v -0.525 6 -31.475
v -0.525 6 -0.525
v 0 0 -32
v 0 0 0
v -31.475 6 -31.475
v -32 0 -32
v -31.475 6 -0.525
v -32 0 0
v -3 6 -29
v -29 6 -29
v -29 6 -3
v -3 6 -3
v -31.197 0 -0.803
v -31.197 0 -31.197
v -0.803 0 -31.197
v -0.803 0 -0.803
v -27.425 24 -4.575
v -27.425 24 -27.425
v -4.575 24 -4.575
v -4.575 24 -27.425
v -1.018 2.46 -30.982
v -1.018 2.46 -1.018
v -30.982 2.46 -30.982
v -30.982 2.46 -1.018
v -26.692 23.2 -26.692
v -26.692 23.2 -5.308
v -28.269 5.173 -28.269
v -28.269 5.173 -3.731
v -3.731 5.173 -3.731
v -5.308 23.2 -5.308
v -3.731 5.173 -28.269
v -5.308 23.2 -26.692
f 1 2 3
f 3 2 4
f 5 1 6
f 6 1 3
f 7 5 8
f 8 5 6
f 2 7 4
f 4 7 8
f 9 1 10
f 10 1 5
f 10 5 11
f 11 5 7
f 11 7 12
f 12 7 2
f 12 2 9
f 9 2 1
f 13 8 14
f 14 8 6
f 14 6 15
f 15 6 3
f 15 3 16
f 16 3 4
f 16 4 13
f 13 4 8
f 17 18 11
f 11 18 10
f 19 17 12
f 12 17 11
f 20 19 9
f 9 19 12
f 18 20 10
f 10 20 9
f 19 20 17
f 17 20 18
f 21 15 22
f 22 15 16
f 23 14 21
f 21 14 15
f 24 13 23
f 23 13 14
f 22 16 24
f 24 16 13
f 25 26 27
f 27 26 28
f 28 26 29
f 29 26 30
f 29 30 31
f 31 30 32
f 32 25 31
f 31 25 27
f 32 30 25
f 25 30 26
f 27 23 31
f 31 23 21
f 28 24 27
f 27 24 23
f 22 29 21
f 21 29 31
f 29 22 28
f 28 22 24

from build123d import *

# Parameters (mm, degrees)
SKETCH1_W           = 32
SKETCH1_H           = 32
BOSS_EXTRUDE1_DEPTH = 6
BOSS_EXTRUDE1_TAPER = 5
SKETCH2_W           = 26
SKETCH2_H           = 26
BOSS_EXTRUDE2_DEPTH = 18
BOSS_EXTRUDE2_TAPER = 5
SHELL1_T            = -0.8
CHAMFER1_SIZE       = 2.5
CHAMFER1_SIZE_2     = 2.750157169


with BuildPart() as part:
    # Sketch1 → Boss-Extrude1 (new body)
    with BuildSketch(Plane(origin=(0, 0, 0), x_dir=(1, 0, 0), z_dir=(0, 1, 0))):
        with Locations((-16, 16)):
            Rectangle(SKETCH1_W, SKETCH1_H)
    extrude(amount=BOSS_EXTRUDE1_DEPTH, taper=BOSS_EXTRUDE1_TAPER)

    # Sketch2 → Boss-Extrude2 (add)
    with BuildSketch(Plane(origin=(0, 6, 0), x_dir=(1, 0, 0), z_dir=(0, 1, 0))):
        with Locations((-16, 16)):
            Rectangle(SKETCH2_W, SKETCH2_H)
    extrude(amount=BOSS_EXTRUDE2_DEPTH, taper=BOSS_EXTRUDE2_TAPER)

    # Shell1
    shell1_openings = [part.faces().sort_by_distance(p)[0] for p in [
        (-16, 0, -16),
    ]]
    offset(amount=SHELL1_T, openings=shell1_openings, kind=Kind.INTERSECTION)

    # Chamfer1
    # the kernel refuses this chamfer: 2.750157169, 2.5 mm, written as the material it adds along each edge
    with BuildSketch(Plane(origin=(5.830274952, 5.2, -1.25799692), x_dir=(0, 0.030161850139926293, -0.9995450278982617), z_dir=(-1, 0, 0))) as chamfer1_piece_1_section:
        Polygon((CHAMFER1_SIZE * 0.999545027898, CHAMFER1_SIZE * 0.0301618501399), (-CHAMFER1_SIZE_2 * 0.117163164513, CHAMFER1_SIZE_2 * 0.993112678869), (0, 0), align=None)
    chamfer1_piece_1 = extrude(amount=43.660549905, mode=Mode.PRIVATE)
    chamfer1_piece_1 = split(chamfer1_piece_1, bisect_by=Plane(origin=(-1.2737044, 5.379537315, -3.779154262), z_dir=(-0.9961946980917455, -0.08715574274765792, 0)), keep=Keep.TOP, mode=Mode.PRIVATE)
    chamfer1_piece_1 = split(chamfer1_piece_1, bisect_by=Plane(origin=(-3.729971497, 5.164641789, -3.779154262), z_dir=(0.9961946980917455, 0.08715574274765821, 0)), keep=Keep.TOP, mode=Mode.PRIVATE)
    chamfer1_piece_1 = split(chamfer1_piece_1, bisect_by=Plane(origin=(-2.501837948, 5.275543614, -3.739674149), z_dir=(0, -0.08715574274765829, -0.9961946980917455)), keep=Keep.TOP, mode=Mode.PRIVATE)
    add(chamfer1_piece_1)
    with BuildSketch(Plane(origin=(5.830274952, 5.2, -1.25799692), x_dir=(0, 0.030161850139926293, -0.9995450278982617), z_dir=(-1, 0, 0))) as chamfer1_piece_2_section:
        Polygon((CHAMFER1_SIZE * 0.999545027898, CHAMFER1_SIZE * 0.0301618501399), (-CHAMFER1_SIZE_2 * 0.117163164513, CHAMFER1_SIZE_2 * 0.993112678869), (0, 0), align=None)
    chamfer1_piece_2 = extrude(amount=43.660549905, mode=Mode.PRIVATE)
    chamfer1_piece_2 = split(chamfer1_piece_2, bisect_by=Plane(origin=(-1.187972058, 4.399612159, -1.99521412), z_dir=(-0.9961946980917455, -0.08715574274765792, 0)), keep=Keep.TOP, mode=Mode.PRIVATE)
    chamfer1_piece_2 = split(chamfer1_piece_2, bisect_by=Plane(origin=(-3.644239154, 4.184716633, -1.99521412), z_dir=(0.9961946980917455, 0.08715574274765821, 0)), keep=Keep.TOP, mode=Mode.PRIVATE)
    chamfer1_piece_2 = split(chamfer1_piece_2, bisect_by=Plane(origin=(-2.416105606, 4.148173113, -3.641042011), z_dir=(0, 0.08715574274765829, 0.9961946980917455)), keep=Keep.TOP, mode=Mode.PRIVATE)
    add(chamfer1_piece_2)
    with BuildSketch(Plane(origin=(5.830274952, 5.2, -1.25799692), x_dir=(0, 0.030161850139926293, -0.9995450278982617), z_dir=(-1, 0, 0))) as chamfer1_piece_3_section:
        Polygon((CHAMFER1_SIZE * 0.999545027898, CHAMFER1_SIZE * 0.0301618501399), (-CHAMFER1_SIZE_2 * 0.117163164513, CHAMFER1_SIZE_2 * 0.993112678869), (0, 0), align=None)
    chamfer1_piece_3 = extrude(amount=43.660549905, mode=Mode.PRIVATE)
    chamfer1_piece_3 = split(chamfer1_piece_3, bisect_by=Plane(origin=(-3.747130429, 5.360769289, -1.993289961), z_dir=(-0.9961946980917455, -0.08715574274765821, 0)), keep=Keep.TOP, mode=Mode.PRIVATE)
    chamfer1_piece_3 = split(chamfer1_piece_3, bisect_by=Plane(origin=(-16, 4.144649452, -3.64073373), z_dir=(0, 0.08715574274765829, 0.9961946980917455)), keep=Keep.TOP, mode=Mode.PRIVATE)
    chamfer1_piece_3 = split(chamfer1_piece_3, bisect_by=Plane(origin=(-28.252869571, 5.360769289, -1.993289961), z_dir=(0.9961946980917455, -0.08715574274765829, 0)), keep=Keep.TOP, mode=Mode.PRIVATE)
    add(chamfer1_piece_3)
    with BuildSketch(Plane(origin=(5.830274952, 5.2, -1.25799692), x_dir=(0, 0.030161850139926293, -0.9995450278982617), z_dir=(-1, 0, 0))) as chamfer1_piece_4_section:
        Polygon((CHAMFER1_SIZE * 0.999545027898, CHAMFER1_SIZE * 0.0301618501399), (-CHAMFER1_SIZE_2 * 0.117163164513, CHAMFER1_SIZE_2 * 0.993112678869), (0, 0), align=None)
    chamfer1_piece_4 = extrude(amount=43.660549905, mode=Mode.PRIVATE)
    chamfer1_piece_4 = split(chamfer1_piece_4, bisect_by=Plane(origin=(-29.498162052, 5.275543614, -3.739674149), z_dir=(0, -0.08715574274765829, -0.9961946980917455)), keep=Keep.TOP, mode=Mode.PRIVATE)
    chamfer1_piece_4 = split(chamfer1_piece_4, bisect_by=Plane(origin=(-28.270028503, 5.164641789, -3.779154262), z_dir=(-0.9961946980917455, 0.08715574274765829, 0)), keep=Keep.TOP, mode=Mode.PRIVATE)
    chamfer1_piece_4 = split(chamfer1_piece_4, bisect_by=Plane(origin=(-30.7262956, 5.379537315, -3.779154262), z_dir=(0.9961946980917455, -0.08715574274765851, 0)), keep=Keep.TOP, mode=Mode.PRIVATE)
    add(chamfer1_piece_4)
    with BuildSketch(Plane(origin=(5.830274952, 5.2, -1.25799692), x_dir=(0, 0.030161850139926293, -0.9995450278982617), z_dir=(-1, 0, 0))) as chamfer1_piece_5_section:
        Polygon((CHAMFER1_SIZE * 0.999545027898, CHAMFER1_SIZE * 0.0301618501399), (-CHAMFER1_SIZE_2 * 0.117163164513, CHAMFER1_SIZE_2 * 0.993112678869), (0, 0), align=None)
    chamfer1_piece_5 = extrude(amount=43.660549905, mode=Mode.PRIVATE)
    chamfer1_piece_5 = split(chamfer1_piece_5, bisect_by=Plane(origin=(-29.583894394, 4.148173113, -3.641042011), z_dir=(0, 0.08715574274765829, 0.9961946980917455)), keep=Keep.TOP, mode=Mode.PRIVATE)
    chamfer1_piece_5 = split(chamfer1_piece_5, bisect_by=Plane(origin=(-28.355760846, 4.184716633, -1.99521412), z_dir=(-0.9961946980917455, 0.08715574274765829, 0)), keep=Keep.TOP, mode=Mode.PRIVATE)
    chamfer1_piece_5 = split(chamfer1_piece_5, bisect_by=Plane(origin=(-30.812027942, 4.399612159, -1.99521412), z_dir=(0.9961946980917455, -0.08715574274765851, 0)), keep=Keep.TOP, mode=Mode.PRIVATE)
    add(chamfer1_piece_5)
    with BuildSketch(Plane(origin=(-30.74200308, 5.2, 5.830274952), x_dir=(0.9995450278982617, 0.030161850139926356, 0), z_dir=(0, 0, -1))) as chamfer1_piece_6_section:
        Polygon((CHAMFER1_SIZE * 0.999545027898, CHAMFER1_SIZE * 0.0301618501399), (-CHAMFER1_SIZE_2 * 0.117163164513, CHAMFER1_SIZE_2 * 0.993112678869), (0, 0), align=None)
    chamfer1_piece_6 = extrude(amount=43.660549905, mode=Mode.PRIVATE)
    chamfer1_piece_6 = split(chamfer1_piece_6, bisect_by=Plane(origin=(-28.220845738, 5.164641789, -3.729971497), z_dir=(0, 0.08715574274765829, 0.9961946980917455)), keep=Keep.TOP, mode=Mode.PRIVATE)
    chamfer1_piece_6 = split(chamfer1_piece_6, bisect_by=Plane(origin=(-28.260325851, 5.275543614, -2.501837948), z_dir=(0.9961946980917455, -0.08715574274765829, 0)), keep=Keep.TOP, mode=Mode.PRIVATE)
    chamfer1_piece_6 = split(chamfer1_piece_6, bisect_by=Plane(origin=(-28.220845738, 5.379537315, -1.2737044), z_dir=(0, -0.08715574274765792, -0.9961946980917455)), keep=Keep.TOP, mode=Mode.PRIVATE)
    add(chamfer1_piece_6)
    with BuildSketch(Plane(origin=(-30.74200308, 5.2, 5.830274952), x_dir=(0.9995450278982617, 0.030161850139926356, 0), z_dir=(0, 0, -1))) as chamfer1_piece_7_section:
        Polygon((CHAMFER1_SIZE * 0.999545027898, CHAMFER1_SIZE * 0.0301618501399), (-CHAMFER1_SIZE_2 * 0.117163164513, CHAMFER1_SIZE_2 * 0.993112678869), (0, 0), align=None)
    chamfer1_piece_7 = extrude(amount=43.660549905, mode=Mode.PRIVATE)
    chamfer1_piece_7 = split(chamfer1_piece_7, bisect_by=Plane(origin=(-30.00478588, 4.184716633, -3.644239154), z_dir=(0, 0.08715574274765829, 0.9961946980917455)), keep=Keep.TOP, mode=Mode.PRIVATE)
    chamfer1_piece_7 = split(chamfer1_piece_7, bisect_by=Plane(origin=(-28.358957989, 4.148173113, -2.416105606), z_dir=(-0.9961946980917455, 0.08715574274765829, 0)), keep=Keep.TOP, mode=Mode.PRIVATE)
    chamfer1_piece_7 = split(chamfer1_piece_7, bisect_by=Plane(origin=(-30.00478588, 4.399612159, -1.187972058), z_dir=(0, -0.08715574274765792, -0.9961946980917455)), keep=Keep.TOP, mode=Mode.PRIVATE)
    add(chamfer1_piece_7)
    with BuildSketch(Plane(origin=(-30.74200308, 5.2, 5.830274952), x_dir=(0.9995450278982617, 0.030161850139926356, 0), z_dir=(0, 0, -1))) as chamfer1_piece_8_section:
        Polygon((CHAMFER1_SIZE * 0.999545027898, CHAMFER1_SIZE * 0.0301618501399), (-CHAMFER1_SIZE_2 * 0.117163164513, CHAMFER1_SIZE_2 * 0.993112678869), (0, 0), align=None)
    chamfer1_piece_8 = extrude(amount=43.660549905, mode=Mode.PRIVATE)
    chamfer1_piece_8 = split(chamfer1_piece_8, bisect_by=Plane(origin=(-30.006710039, 5.360769289, -28.252869571), z_dir=(0, -0.08715574274765829, 0.9961946980917455)), keep=Keep.TOP, mode=Mode.PRIVATE)
    chamfer1_piece_8 = split(chamfer1_piece_8, bisect_by=Plane(origin=(-30.006710039, 5.360769289, -3.747130429), z_dir=(0, -0.08715574274765829, -0.9961946980917455)), keep=Keep.TOP, mode=Mode.PRIVATE)
    chamfer1_piece_8 = split(chamfer1_piece_8, bisect_by=Plane(origin=(-28.35926627, 4.144649452, -16), z_dir=(-0.9961946980917455, 0.08715574274765829, 0)), keep=Keep.TOP, mode=Mode.PRIVATE)
    add(chamfer1_piece_8)
    with BuildSketch(Plane(origin=(-30.74200308, 5.2, 5.830274952), x_dir=(0.9995450278982617, 0.030161850139926356, 0), z_dir=(0, 0, -1))) as chamfer1_piece_9_section:
        Polygon((CHAMFER1_SIZE * 0.999545027898, CHAMFER1_SIZE * 0.0301618501399), (-CHAMFER1_SIZE_2 * 0.117163164513, CHAMFER1_SIZE_2 * 0.993112678869), (0, 0), align=None)
    chamfer1_piece_9 = extrude(amount=43.660549905, mode=Mode.PRIVATE)
    chamfer1_piece_9 = split(chamfer1_piece_9, bisect_by=Plane(origin=(-28.220845738, 5.379537315, -30.7262956), z_dir=(0, -0.08715574274765836, 0.9961946980917455)), keep=Keep.TOP, mode=Mode.PRIVATE)
    chamfer1_piece_9 = split(chamfer1_piece_9, bisect_by=Plane(origin=(-28.220845738, 5.164641789, -28.270028503), z_dir=(0, 0.08715574274765829, -0.9961946980917455)), keep=Keep.TOP, mode=Mode.PRIVATE)
    chamfer1_piece_9 = split(chamfer1_piece_9, bisect_by=Plane(origin=(-28.260325851, 5.275543614, -29.498162052), z_dir=(0.9961946980917455, -0.08715574274765829, 0)), keep=Keep.TOP, mode=Mode.PRIVATE)
    add(chamfer1_piece_9)
    with BuildSketch(Plane(origin=(-30.74200308, 5.2, 5.830274952), x_dir=(0.9995450278982617, 0.030161850139926356, 0), z_dir=(0, 0, -1))) as chamfer1_piece_10_section:
        Polygon((CHAMFER1_SIZE * 0.999545027898, CHAMFER1_SIZE * 0.0301618501399), (-CHAMFER1_SIZE_2 * 0.117163164513, CHAMFER1_SIZE_2 * 0.993112678869), (0, 0), align=None)
    chamfer1_piece_10 = extrude(amount=43.660549905, mode=Mode.PRIVATE)
    chamfer1_piece_10 = split(chamfer1_piece_10, bisect_by=Plane(origin=(-30.00478588, 4.399612159, -30.812027942), z_dir=(0, -0.08715574274765836, 0.9961946980917455)), keep=Keep.TOP, mode=Mode.PRIVATE)
    chamfer1_piece_10 = split(chamfer1_piece_10, bisect_by=Plane(origin=(-30.00478588, 4.184716633, -28.355760846), z_dir=(0, 0.08715574274765829, -0.9961946980917455)), keep=Keep.TOP, mode=Mode.PRIVATE)
    chamfer1_piece_10 = split(chamfer1_piece_10, bisect_by=Plane(origin=(-28.358957989, 4.148173113, -29.583894394), z_dir=(-0.9961946980917455, 0.08715574274765829, 0)), keep=Keep.TOP, mode=Mode.PRIVATE)
    add(chamfer1_piece_10)
    with BuildSketch(Plane(origin=(5.830274952, 5.2, -30.74200308), x_dir=(0, -0.9937112432628153, -0.11197305485280758), z_dir=(-1, 0, 0))) as chamfer1_piece_11_section:
        Polygon((CHAMFER1_SIZE_2 * 0.99968896676, CHAMFER1_SIZE_2 * 0.0249393220908), (-CHAMFER1_SIZE * 0.111973054853, CHAMFER1_SIZE * 0.993711243263), (0, 0), align=None)
    chamfer1_piece_11 = extrude(amount=43.660549905, mode=Mode.PRIVATE)
    chamfer1_piece_11 = split(chamfer1_piece_11, bisect_by=Plane(origin=(-1.187972058, 4.399612159, -30.00478588), z_dir=(-0.9961946980917455, -0.08715574274765792, 0)), keep=Keep.TOP, mode=Mode.PRIVATE)
    chamfer1_piece_11 = split(chamfer1_piece_11, bisect_by=Plane(origin=(-2.416105606, 4.148173113, -28.358957989), z_dir=(0, 0.08715574274765829, -0.9961946980917455)), keep=Keep.TOP, mode=Mode.PRIVATE)
    chamfer1_piece_11 = split(chamfer1_piece_11, bisect_by=Plane(origin=(-3.644239154, 4.184716633, -30.00478588), z_dir=(0.9961946980917455, 0.08715574274765821, 0)), keep=Keep.TOP, mode=Mode.PRIVATE)
    add(chamfer1_piece_11)
    with BuildSketch(Plane(origin=(5.830274952, 5.2, -30.74200308), x_dir=(0, -0.9937112432628153, -0.11197305485280758), z_dir=(-1, 0, 0))) as chamfer1_piece_12_section:
        Polygon((CHAMFER1_SIZE_2 * 0.99968896676, CHAMFER1_SIZE_2 * 0.0249393220908), (-CHAMFER1_SIZE * 0.111973054853, CHAMFER1_SIZE * 0.993711243263), (0, 0), align=None)
    chamfer1_piece_12 = extrude(amount=43.660549905, mode=Mode.PRIVATE)
    chamfer1_piece_12 = split(chamfer1_piece_12, bisect_by=Plane(origin=(-1.2737044, 5.379537315, -28.220845738), z_dir=(-0.9961946980917455, -0.08715574274765792, 0)), keep=Keep.TOP, mode=Mode.PRIVATE)
    chamfer1_piece_12 = split(chamfer1_piece_12, bisect_by=Plane(origin=(-2.501837948, 5.275543614, -28.260325851), z_dir=(0, -0.08715574274765829, 0.9961946980917455)), keep=Keep.TOP, mode=Mode.PRIVATE)
    chamfer1_piece_12 = split(chamfer1_piece_12, bisect_by=Plane(origin=(-3.729971497, 5.164641789, -28.220845738), z_dir=(0.9961946980917455, 0.08715574274765821, 0)), keep=Keep.TOP, mode=Mode.PRIVATE)
    add(chamfer1_piece_12)
    with BuildSketch(Plane(origin=(5.830274952, 5.2, -30.74200308), x_dir=(0, -0.9937112432628153, -0.11197305485280758), z_dir=(-1, 0, 0))) as chamfer1_piece_13_section:
        Polygon((CHAMFER1_SIZE_2 * 0.99968896676, CHAMFER1_SIZE_2 * 0.0249393220908), (-CHAMFER1_SIZE * 0.111973054853, CHAMFER1_SIZE * 0.993711243263), (0, 0), align=None)
    chamfer1_piece_13 = extrude(amount=43.660549905, mode=Mode.PRIVATE)
    chamfer1_piece_13 = split(chamfer1_piece_13, bisect_by=Plane(origin=(-16, 4.144649452, -28.35926627), z_dir=(0, 0.08715574274765829, -0.9961946980917455)), keep=Keep.TOP, mode=Mode.PRIVATE)
    chamfer1_piece_13 = split(chamfer1_piece_13, bisect_by=Plane(origin=(-3.747130429, 5.360769289, -30.006710039), z_dir=(-0.9961946980917455, -0.08715574274765821, 0)), keep=Keep.TOP, mode=Mode.PRIVATE)
    chamfer1_piece_13 = split(chamfer1_piece_13, bisect_by=Plane(origin=(-28.252869571, 5.360769289, -30.006710039), z_dir=(0.9961946980917455, -0.08715574274765829, 0)), keep=Keep.TOP, mode=Mode.PRIVATE)
    add(chamfer1_piece_13)
    with BuildSketch(Plane(origin=(5.830274952, 5.2, -30.74200308), x_dir=(0, -0.9937112432628153, -0.11197305485280758), z_dir=(-1, 0, 0))) as chamfer1_piece_14_section:
        Polygon((CHAMFER1_SIZE_2 * 0.99968896676, CHAMFER1_SIZE_2 * 0.0249393220908), (-CHAMFER1_SIZE * 0.111973054853, CHAMFER1_SIZE * 0.993711243263), (0, 0), align=None)
    chamfer1_piece_14 = extrude(amount=43.660549905, mode=Mode.PRIVATE)
    chamfer1_piece_14 = split(chamfer1_piece_14, bisect_by=Plane(origin=(-30.812027942, 4.399612159, -30.00478588), z_dir=(0.9961946980917455, -0.08715574274765851, 0)), keep=Keep.TOP, mode=Mode.PRIVATE)
    chamfer1_piece_14 = split(chamfer1_piece_14, bisect_by=Plane(origin=(-29.583894394, 4.148173113, -28.358957989), z_dir=(0, 0.08715574274765829, -0.9961946980917455)), keep=Keep.TOP, mode=Mode.PRIVATE)
    chamfer1_piece_14 = split(chamfer1_piece_14, bisect_by=Plane(origin=(-28.355760846, 4.184716633, -30.00478588), z_dir=(-0.9961946980917455, 0.08715574274765829, 0)), keep=Keep.TOP, mode=Mode.PRIVATE)
    add(chamfer1_piece_14)
    with BuildSketch(Plane(origin=(5.830274952, 5.2, -30.74200308), x_dir=(0, -0.9937112432628153, -0.11197305485280758), z_dir=(-1, 0, 0))) as chamfer1_piece_15_section:
        Polygon((CHAMFER1_SIZE_2 * 0.99968896676, CHAMFER1_SIZE_2 * 0.0249393220908), (-CHAMFER1_SIZE * 0.111973054853, CHAMFER1_SIZE * 0.993711243263), (0, 0), align=None)
    chamfer1_piece_15 = extrude(amount=43.660549905, mode=Mode.PRIVATE)
    chamfer1_piece_15 = split(chamfer1_piece_15, bisect_by=Plane(origin=(-30.7262956, 5.379537315, -28.220845738), z_dir=(0.9961946980917455, -0.08715574274765851, 0)), keep=Keep.TOP, mode=Mode.PRIVATE)
    chamfer1_piece_15 = split(chamfer1_piece_15, bisect_by=Plane(origin=(-29.498162052, 5.275543614, -28.260325851), z_dir=(0, -0.08715574274765829, 0.9961946980917455)), keep=Keep.TOP, mode=Mode.PRIVATE)
    chamfer1_piece_15 = split(chamfer1_piece_15, bisect_by=Plane(origin=(-28.270028503, 5.164641789, -28.220845738), z_dir=(-0.9961946980917455, 0.08715574274765829, 0)), keep=Keep.TOP, mode=Mode.PRIVATE)
    add(chamfer1_piece_15)
    with BuildSketch(Plane(origin=(-1.25799692, 5.2, 5.830274952), x_dir=(0.11197305485280797, -0.9937112432628151, 0), z_dir=(0, 0, -1))) as chamfer1_piece_16_section:
        Polygon((CHAMFER1_SIZE_2 * 0.99968896676, CHAMFER1_SIZE_2 * 0.0249393220908), (-CHAMFER1_SIZE * 0.111973054853, CHAMFER1_SIZE * 0.993711243263), (0, 0), align=None)
    chamfer1_piece_16 = extrude(amount=43.660549905, mode=Mode.PRIVATE)
    chamfer1_piece_16 = split(chamfer1_piece_16, bisect_by=Plane(origin=(-1.99521412, 4.399612159, -1.187972058), z_dir=(0, -0.08715574274765792, -0.9961946980917455)), keep=Keep.TOP, mode=Mode.PRIVATE)
    chamfer1_piece_16 = split(chamfer1_piece_16, bisect_by=Plane(origin=(-3.641042011, 4.148173113, -2.416105606), z_dir=(0.9961946980917455, 0.08715574274765821, 0)), keep=Keep.TOP, mode=Mode.PRIVATE)
    chamfer1_piece_16 = split(chamfer1_piece_16, bisect_by=Plane(origin=(-1.99521412, 4.184716633, -3.644239154), z_dir=(0, 0.08715574274765829, 0.9961946980917455)), keep=Keep.TOP, mode=Mode.PRIVATE)
    add(chamfer1_piece_16)
    with BuildSketch(Plane(origin=(-1.25799692, 5.2, 5.830274952), x_dir=(0.11197305485280797, -0.9937112432628151, 0), z_dir=(0, 0, -1))) as chamfer1_piece_17_section:
        Polygon((CHAMFER1_SIZE_2 * 0.99968896676, CHAMFER1_SIZE_2 * 0.0249393220908), (-CHAMFER1_SIZE * 0.111973054853, CHAMFER1_SIZE * 0.993711243263), (0, 0), align=None)
    chamfer1_piece_17 = extrude(amount=43.660549905, mode=Mode.PRIVATE)
    chamfer1_piece_17 = split(chamfer1_piece_17, bisect_by=Plane(origin=(-3.779154262, 5.379537315, -1.2737044), z_dir=(0, -0.08715574274765792, -0.9961946980917455)), keep=Keep.TOP, mode=Mode.PRIVATE)
    chamfer1_piece_17 = split(chamfer1_piece_17, bisect_by=Plane(origin=(-3.739674149, 5.275543614, -2.501837948), z_dir=(-0.9961946980917455, -0.08715574274765821, 0)), keep=Keep.TOP, mode=Mode.PRIVATE)
    chamfer1_piece_17 = split(chamfer1_piece_17, bisect_by=Plane(origin=(-3.779154262, 5.164641789, -3.729971497), z_dir=(0, 0.08715574274765829, 0.9961946980917455)), keep=Keep.TOP, mode=Mode.PRIVATE)
    add(chamfer1_piece_17)
    with BuildSketch(Plane(origin=(-1.25799692, 5.2, 5.830274952), x_dir=(0.11197305485280797, -0.9937112432628151, 0), z_dir=(0, 0, -1))) as chamfer1_piece_18_section:
        Polygon((CHAMFER1_SIZE_2 * 0.99968896676, CHAMFER1_SIZE_2 * 0.0249393220908), (-CHAMFER1_SIZE * 0.111973054853, CHAMFER1_SIZE * 0.993711243263), (0, 0), align=None)
    chamfer1_piece_18 = extrude(amount=43.660549905, mode=Mode.PRIVATE)
    chamfer1_piece_18 = split(chamfer1_piece_18, bisect_by=Plane(origin=(-1.993289961, 5.360769289, -28.252869571), z_dir=(0, -0.08715574274765829, 0.9961946980917455)), keep=Keep.TOP, mode=Mode.PRIVATE)
    chamfer1_piece_18 = split(chamfer1_piece_18, bisect_by=Plane(origin=(-3.64073373, 4.144649452, -16), z_dir=(0.9961946980917455, 0.08715574274765821, 0)), keep=Keep.TOP, mode=Mode.PRIVATE)
    chamfer1_piece_18 = split(chamfer1_piece_18, bisect_by=Plane(origin=(-1.993289961, 5.360769289, -3.747130429), z_dir=(0, -0.08715574274765829, -0.9961946980917455)), keep=Keep.TOP, mode=Mode.PRIVATE)
    add(chamfer1_piece_18)
    with BuildSketch(Plane(origin=(-1.25799692, 5.2, 5.830274952), x_dir=(0.11197305485280797, -0.9937112432628151, 0), z_dir=(0, 0, -1))) as chamfer1_piece_19_section:
        Polygon((CHAMFER1_SIZE_2 * 0.99968896676, CHAMFER1_SIZE_2 * 0.0249393220908), (-CHAMFER1_SIZE * 0.111973054853, CHAMFER1_SIZE * 0.993711243263), (0, 0), align=None)
    chamfer1_piece_19 = extrude(amount=43.660549905, mode=Mode.PRIVATE)
    chamfer1_piece_19 = split(chamfer1_piece_19, bisect_by=Plane(origin=(-1.99521412, 4.399612159, -30.812027942), z_dir=(0, -0.08715574274765836, 0.9961946980917455)), keep=Keep.TOP, mode=Mode.PRIVATE)
    chamfer1_piece_19 = split(chamfer1_piece_19, bisect_by=Plane(origin=(-1.99521412, 4.184716633, -28.355760846), z_dir=(0, 0.08715574274765829, -0.9961946980917455)), keep=Keep.TOP, mode=Mode.PRIVATE)
    chamfer1_piece_19 = split(chamfer1_piece_19, bisect_by=Plane(origin=(-3.641042011, 4.148173113, -29.583894394), z_dir=(0.9961946980917455, 0.08715574274765821, 0)), keep=Keep.TOP, mode=Mode.PRIVATE)
    add(chamfer1_piece_19)
    with BuildSketch(Plane(origin=(-1.25799692, 5.2, 5.830274952), x_dir=(0.11197305485280797, -0.9937112432628151, 0), z_dir=(0, 0, -1))) as chamfer1_piece_20_section:
        Polygon((CHAMFER1_SIZE_2 * 0.99968896676, CHAMFER1_SIZE_2 * 0.0249393220908), (-CHAMFER1_SIZE * 0.111973054853, CHAMFER1_SIZE * 0.993711243263), (0, 0), align=None)
    chamfer1_piece_20 = extrude(amount=43.660549905, mode=Mode.PRIVATE)
    chamfer1_piece_20 = split(chamfer1_piece_20, bisect_by=Plane(origin=(-3.779154262, 5.379537315, -30.7262956), z_dir=(0, -0.08715574274765836, 0.9961946980917455)), keep=Keep.TOP, mode=Mode.PRIVATE)
    chamfer1_piece_20 = split(chamfer1_piece_20, bisect_by=Plane(origin=(-3.779154262, 5.164641789, -28.270028503), z_dir=(0, 0.08715574274765829, -0.9961946980917455)), keep=Keep.TOP, mode=Mode.PRIVATE)
    chamfer1_piece_20 = split(chamfer1_piece_20, bisect_by=Plane(origin=(-3.739674149, 5.275543614, -29.498162052), z_dir=(-0.9961946980917455, -0.08715574274765821, 0)), keep=Keep.TOP, mode=Mode.PRIVATE)
    add(chamfer1_piece_20)


solid = part.part
